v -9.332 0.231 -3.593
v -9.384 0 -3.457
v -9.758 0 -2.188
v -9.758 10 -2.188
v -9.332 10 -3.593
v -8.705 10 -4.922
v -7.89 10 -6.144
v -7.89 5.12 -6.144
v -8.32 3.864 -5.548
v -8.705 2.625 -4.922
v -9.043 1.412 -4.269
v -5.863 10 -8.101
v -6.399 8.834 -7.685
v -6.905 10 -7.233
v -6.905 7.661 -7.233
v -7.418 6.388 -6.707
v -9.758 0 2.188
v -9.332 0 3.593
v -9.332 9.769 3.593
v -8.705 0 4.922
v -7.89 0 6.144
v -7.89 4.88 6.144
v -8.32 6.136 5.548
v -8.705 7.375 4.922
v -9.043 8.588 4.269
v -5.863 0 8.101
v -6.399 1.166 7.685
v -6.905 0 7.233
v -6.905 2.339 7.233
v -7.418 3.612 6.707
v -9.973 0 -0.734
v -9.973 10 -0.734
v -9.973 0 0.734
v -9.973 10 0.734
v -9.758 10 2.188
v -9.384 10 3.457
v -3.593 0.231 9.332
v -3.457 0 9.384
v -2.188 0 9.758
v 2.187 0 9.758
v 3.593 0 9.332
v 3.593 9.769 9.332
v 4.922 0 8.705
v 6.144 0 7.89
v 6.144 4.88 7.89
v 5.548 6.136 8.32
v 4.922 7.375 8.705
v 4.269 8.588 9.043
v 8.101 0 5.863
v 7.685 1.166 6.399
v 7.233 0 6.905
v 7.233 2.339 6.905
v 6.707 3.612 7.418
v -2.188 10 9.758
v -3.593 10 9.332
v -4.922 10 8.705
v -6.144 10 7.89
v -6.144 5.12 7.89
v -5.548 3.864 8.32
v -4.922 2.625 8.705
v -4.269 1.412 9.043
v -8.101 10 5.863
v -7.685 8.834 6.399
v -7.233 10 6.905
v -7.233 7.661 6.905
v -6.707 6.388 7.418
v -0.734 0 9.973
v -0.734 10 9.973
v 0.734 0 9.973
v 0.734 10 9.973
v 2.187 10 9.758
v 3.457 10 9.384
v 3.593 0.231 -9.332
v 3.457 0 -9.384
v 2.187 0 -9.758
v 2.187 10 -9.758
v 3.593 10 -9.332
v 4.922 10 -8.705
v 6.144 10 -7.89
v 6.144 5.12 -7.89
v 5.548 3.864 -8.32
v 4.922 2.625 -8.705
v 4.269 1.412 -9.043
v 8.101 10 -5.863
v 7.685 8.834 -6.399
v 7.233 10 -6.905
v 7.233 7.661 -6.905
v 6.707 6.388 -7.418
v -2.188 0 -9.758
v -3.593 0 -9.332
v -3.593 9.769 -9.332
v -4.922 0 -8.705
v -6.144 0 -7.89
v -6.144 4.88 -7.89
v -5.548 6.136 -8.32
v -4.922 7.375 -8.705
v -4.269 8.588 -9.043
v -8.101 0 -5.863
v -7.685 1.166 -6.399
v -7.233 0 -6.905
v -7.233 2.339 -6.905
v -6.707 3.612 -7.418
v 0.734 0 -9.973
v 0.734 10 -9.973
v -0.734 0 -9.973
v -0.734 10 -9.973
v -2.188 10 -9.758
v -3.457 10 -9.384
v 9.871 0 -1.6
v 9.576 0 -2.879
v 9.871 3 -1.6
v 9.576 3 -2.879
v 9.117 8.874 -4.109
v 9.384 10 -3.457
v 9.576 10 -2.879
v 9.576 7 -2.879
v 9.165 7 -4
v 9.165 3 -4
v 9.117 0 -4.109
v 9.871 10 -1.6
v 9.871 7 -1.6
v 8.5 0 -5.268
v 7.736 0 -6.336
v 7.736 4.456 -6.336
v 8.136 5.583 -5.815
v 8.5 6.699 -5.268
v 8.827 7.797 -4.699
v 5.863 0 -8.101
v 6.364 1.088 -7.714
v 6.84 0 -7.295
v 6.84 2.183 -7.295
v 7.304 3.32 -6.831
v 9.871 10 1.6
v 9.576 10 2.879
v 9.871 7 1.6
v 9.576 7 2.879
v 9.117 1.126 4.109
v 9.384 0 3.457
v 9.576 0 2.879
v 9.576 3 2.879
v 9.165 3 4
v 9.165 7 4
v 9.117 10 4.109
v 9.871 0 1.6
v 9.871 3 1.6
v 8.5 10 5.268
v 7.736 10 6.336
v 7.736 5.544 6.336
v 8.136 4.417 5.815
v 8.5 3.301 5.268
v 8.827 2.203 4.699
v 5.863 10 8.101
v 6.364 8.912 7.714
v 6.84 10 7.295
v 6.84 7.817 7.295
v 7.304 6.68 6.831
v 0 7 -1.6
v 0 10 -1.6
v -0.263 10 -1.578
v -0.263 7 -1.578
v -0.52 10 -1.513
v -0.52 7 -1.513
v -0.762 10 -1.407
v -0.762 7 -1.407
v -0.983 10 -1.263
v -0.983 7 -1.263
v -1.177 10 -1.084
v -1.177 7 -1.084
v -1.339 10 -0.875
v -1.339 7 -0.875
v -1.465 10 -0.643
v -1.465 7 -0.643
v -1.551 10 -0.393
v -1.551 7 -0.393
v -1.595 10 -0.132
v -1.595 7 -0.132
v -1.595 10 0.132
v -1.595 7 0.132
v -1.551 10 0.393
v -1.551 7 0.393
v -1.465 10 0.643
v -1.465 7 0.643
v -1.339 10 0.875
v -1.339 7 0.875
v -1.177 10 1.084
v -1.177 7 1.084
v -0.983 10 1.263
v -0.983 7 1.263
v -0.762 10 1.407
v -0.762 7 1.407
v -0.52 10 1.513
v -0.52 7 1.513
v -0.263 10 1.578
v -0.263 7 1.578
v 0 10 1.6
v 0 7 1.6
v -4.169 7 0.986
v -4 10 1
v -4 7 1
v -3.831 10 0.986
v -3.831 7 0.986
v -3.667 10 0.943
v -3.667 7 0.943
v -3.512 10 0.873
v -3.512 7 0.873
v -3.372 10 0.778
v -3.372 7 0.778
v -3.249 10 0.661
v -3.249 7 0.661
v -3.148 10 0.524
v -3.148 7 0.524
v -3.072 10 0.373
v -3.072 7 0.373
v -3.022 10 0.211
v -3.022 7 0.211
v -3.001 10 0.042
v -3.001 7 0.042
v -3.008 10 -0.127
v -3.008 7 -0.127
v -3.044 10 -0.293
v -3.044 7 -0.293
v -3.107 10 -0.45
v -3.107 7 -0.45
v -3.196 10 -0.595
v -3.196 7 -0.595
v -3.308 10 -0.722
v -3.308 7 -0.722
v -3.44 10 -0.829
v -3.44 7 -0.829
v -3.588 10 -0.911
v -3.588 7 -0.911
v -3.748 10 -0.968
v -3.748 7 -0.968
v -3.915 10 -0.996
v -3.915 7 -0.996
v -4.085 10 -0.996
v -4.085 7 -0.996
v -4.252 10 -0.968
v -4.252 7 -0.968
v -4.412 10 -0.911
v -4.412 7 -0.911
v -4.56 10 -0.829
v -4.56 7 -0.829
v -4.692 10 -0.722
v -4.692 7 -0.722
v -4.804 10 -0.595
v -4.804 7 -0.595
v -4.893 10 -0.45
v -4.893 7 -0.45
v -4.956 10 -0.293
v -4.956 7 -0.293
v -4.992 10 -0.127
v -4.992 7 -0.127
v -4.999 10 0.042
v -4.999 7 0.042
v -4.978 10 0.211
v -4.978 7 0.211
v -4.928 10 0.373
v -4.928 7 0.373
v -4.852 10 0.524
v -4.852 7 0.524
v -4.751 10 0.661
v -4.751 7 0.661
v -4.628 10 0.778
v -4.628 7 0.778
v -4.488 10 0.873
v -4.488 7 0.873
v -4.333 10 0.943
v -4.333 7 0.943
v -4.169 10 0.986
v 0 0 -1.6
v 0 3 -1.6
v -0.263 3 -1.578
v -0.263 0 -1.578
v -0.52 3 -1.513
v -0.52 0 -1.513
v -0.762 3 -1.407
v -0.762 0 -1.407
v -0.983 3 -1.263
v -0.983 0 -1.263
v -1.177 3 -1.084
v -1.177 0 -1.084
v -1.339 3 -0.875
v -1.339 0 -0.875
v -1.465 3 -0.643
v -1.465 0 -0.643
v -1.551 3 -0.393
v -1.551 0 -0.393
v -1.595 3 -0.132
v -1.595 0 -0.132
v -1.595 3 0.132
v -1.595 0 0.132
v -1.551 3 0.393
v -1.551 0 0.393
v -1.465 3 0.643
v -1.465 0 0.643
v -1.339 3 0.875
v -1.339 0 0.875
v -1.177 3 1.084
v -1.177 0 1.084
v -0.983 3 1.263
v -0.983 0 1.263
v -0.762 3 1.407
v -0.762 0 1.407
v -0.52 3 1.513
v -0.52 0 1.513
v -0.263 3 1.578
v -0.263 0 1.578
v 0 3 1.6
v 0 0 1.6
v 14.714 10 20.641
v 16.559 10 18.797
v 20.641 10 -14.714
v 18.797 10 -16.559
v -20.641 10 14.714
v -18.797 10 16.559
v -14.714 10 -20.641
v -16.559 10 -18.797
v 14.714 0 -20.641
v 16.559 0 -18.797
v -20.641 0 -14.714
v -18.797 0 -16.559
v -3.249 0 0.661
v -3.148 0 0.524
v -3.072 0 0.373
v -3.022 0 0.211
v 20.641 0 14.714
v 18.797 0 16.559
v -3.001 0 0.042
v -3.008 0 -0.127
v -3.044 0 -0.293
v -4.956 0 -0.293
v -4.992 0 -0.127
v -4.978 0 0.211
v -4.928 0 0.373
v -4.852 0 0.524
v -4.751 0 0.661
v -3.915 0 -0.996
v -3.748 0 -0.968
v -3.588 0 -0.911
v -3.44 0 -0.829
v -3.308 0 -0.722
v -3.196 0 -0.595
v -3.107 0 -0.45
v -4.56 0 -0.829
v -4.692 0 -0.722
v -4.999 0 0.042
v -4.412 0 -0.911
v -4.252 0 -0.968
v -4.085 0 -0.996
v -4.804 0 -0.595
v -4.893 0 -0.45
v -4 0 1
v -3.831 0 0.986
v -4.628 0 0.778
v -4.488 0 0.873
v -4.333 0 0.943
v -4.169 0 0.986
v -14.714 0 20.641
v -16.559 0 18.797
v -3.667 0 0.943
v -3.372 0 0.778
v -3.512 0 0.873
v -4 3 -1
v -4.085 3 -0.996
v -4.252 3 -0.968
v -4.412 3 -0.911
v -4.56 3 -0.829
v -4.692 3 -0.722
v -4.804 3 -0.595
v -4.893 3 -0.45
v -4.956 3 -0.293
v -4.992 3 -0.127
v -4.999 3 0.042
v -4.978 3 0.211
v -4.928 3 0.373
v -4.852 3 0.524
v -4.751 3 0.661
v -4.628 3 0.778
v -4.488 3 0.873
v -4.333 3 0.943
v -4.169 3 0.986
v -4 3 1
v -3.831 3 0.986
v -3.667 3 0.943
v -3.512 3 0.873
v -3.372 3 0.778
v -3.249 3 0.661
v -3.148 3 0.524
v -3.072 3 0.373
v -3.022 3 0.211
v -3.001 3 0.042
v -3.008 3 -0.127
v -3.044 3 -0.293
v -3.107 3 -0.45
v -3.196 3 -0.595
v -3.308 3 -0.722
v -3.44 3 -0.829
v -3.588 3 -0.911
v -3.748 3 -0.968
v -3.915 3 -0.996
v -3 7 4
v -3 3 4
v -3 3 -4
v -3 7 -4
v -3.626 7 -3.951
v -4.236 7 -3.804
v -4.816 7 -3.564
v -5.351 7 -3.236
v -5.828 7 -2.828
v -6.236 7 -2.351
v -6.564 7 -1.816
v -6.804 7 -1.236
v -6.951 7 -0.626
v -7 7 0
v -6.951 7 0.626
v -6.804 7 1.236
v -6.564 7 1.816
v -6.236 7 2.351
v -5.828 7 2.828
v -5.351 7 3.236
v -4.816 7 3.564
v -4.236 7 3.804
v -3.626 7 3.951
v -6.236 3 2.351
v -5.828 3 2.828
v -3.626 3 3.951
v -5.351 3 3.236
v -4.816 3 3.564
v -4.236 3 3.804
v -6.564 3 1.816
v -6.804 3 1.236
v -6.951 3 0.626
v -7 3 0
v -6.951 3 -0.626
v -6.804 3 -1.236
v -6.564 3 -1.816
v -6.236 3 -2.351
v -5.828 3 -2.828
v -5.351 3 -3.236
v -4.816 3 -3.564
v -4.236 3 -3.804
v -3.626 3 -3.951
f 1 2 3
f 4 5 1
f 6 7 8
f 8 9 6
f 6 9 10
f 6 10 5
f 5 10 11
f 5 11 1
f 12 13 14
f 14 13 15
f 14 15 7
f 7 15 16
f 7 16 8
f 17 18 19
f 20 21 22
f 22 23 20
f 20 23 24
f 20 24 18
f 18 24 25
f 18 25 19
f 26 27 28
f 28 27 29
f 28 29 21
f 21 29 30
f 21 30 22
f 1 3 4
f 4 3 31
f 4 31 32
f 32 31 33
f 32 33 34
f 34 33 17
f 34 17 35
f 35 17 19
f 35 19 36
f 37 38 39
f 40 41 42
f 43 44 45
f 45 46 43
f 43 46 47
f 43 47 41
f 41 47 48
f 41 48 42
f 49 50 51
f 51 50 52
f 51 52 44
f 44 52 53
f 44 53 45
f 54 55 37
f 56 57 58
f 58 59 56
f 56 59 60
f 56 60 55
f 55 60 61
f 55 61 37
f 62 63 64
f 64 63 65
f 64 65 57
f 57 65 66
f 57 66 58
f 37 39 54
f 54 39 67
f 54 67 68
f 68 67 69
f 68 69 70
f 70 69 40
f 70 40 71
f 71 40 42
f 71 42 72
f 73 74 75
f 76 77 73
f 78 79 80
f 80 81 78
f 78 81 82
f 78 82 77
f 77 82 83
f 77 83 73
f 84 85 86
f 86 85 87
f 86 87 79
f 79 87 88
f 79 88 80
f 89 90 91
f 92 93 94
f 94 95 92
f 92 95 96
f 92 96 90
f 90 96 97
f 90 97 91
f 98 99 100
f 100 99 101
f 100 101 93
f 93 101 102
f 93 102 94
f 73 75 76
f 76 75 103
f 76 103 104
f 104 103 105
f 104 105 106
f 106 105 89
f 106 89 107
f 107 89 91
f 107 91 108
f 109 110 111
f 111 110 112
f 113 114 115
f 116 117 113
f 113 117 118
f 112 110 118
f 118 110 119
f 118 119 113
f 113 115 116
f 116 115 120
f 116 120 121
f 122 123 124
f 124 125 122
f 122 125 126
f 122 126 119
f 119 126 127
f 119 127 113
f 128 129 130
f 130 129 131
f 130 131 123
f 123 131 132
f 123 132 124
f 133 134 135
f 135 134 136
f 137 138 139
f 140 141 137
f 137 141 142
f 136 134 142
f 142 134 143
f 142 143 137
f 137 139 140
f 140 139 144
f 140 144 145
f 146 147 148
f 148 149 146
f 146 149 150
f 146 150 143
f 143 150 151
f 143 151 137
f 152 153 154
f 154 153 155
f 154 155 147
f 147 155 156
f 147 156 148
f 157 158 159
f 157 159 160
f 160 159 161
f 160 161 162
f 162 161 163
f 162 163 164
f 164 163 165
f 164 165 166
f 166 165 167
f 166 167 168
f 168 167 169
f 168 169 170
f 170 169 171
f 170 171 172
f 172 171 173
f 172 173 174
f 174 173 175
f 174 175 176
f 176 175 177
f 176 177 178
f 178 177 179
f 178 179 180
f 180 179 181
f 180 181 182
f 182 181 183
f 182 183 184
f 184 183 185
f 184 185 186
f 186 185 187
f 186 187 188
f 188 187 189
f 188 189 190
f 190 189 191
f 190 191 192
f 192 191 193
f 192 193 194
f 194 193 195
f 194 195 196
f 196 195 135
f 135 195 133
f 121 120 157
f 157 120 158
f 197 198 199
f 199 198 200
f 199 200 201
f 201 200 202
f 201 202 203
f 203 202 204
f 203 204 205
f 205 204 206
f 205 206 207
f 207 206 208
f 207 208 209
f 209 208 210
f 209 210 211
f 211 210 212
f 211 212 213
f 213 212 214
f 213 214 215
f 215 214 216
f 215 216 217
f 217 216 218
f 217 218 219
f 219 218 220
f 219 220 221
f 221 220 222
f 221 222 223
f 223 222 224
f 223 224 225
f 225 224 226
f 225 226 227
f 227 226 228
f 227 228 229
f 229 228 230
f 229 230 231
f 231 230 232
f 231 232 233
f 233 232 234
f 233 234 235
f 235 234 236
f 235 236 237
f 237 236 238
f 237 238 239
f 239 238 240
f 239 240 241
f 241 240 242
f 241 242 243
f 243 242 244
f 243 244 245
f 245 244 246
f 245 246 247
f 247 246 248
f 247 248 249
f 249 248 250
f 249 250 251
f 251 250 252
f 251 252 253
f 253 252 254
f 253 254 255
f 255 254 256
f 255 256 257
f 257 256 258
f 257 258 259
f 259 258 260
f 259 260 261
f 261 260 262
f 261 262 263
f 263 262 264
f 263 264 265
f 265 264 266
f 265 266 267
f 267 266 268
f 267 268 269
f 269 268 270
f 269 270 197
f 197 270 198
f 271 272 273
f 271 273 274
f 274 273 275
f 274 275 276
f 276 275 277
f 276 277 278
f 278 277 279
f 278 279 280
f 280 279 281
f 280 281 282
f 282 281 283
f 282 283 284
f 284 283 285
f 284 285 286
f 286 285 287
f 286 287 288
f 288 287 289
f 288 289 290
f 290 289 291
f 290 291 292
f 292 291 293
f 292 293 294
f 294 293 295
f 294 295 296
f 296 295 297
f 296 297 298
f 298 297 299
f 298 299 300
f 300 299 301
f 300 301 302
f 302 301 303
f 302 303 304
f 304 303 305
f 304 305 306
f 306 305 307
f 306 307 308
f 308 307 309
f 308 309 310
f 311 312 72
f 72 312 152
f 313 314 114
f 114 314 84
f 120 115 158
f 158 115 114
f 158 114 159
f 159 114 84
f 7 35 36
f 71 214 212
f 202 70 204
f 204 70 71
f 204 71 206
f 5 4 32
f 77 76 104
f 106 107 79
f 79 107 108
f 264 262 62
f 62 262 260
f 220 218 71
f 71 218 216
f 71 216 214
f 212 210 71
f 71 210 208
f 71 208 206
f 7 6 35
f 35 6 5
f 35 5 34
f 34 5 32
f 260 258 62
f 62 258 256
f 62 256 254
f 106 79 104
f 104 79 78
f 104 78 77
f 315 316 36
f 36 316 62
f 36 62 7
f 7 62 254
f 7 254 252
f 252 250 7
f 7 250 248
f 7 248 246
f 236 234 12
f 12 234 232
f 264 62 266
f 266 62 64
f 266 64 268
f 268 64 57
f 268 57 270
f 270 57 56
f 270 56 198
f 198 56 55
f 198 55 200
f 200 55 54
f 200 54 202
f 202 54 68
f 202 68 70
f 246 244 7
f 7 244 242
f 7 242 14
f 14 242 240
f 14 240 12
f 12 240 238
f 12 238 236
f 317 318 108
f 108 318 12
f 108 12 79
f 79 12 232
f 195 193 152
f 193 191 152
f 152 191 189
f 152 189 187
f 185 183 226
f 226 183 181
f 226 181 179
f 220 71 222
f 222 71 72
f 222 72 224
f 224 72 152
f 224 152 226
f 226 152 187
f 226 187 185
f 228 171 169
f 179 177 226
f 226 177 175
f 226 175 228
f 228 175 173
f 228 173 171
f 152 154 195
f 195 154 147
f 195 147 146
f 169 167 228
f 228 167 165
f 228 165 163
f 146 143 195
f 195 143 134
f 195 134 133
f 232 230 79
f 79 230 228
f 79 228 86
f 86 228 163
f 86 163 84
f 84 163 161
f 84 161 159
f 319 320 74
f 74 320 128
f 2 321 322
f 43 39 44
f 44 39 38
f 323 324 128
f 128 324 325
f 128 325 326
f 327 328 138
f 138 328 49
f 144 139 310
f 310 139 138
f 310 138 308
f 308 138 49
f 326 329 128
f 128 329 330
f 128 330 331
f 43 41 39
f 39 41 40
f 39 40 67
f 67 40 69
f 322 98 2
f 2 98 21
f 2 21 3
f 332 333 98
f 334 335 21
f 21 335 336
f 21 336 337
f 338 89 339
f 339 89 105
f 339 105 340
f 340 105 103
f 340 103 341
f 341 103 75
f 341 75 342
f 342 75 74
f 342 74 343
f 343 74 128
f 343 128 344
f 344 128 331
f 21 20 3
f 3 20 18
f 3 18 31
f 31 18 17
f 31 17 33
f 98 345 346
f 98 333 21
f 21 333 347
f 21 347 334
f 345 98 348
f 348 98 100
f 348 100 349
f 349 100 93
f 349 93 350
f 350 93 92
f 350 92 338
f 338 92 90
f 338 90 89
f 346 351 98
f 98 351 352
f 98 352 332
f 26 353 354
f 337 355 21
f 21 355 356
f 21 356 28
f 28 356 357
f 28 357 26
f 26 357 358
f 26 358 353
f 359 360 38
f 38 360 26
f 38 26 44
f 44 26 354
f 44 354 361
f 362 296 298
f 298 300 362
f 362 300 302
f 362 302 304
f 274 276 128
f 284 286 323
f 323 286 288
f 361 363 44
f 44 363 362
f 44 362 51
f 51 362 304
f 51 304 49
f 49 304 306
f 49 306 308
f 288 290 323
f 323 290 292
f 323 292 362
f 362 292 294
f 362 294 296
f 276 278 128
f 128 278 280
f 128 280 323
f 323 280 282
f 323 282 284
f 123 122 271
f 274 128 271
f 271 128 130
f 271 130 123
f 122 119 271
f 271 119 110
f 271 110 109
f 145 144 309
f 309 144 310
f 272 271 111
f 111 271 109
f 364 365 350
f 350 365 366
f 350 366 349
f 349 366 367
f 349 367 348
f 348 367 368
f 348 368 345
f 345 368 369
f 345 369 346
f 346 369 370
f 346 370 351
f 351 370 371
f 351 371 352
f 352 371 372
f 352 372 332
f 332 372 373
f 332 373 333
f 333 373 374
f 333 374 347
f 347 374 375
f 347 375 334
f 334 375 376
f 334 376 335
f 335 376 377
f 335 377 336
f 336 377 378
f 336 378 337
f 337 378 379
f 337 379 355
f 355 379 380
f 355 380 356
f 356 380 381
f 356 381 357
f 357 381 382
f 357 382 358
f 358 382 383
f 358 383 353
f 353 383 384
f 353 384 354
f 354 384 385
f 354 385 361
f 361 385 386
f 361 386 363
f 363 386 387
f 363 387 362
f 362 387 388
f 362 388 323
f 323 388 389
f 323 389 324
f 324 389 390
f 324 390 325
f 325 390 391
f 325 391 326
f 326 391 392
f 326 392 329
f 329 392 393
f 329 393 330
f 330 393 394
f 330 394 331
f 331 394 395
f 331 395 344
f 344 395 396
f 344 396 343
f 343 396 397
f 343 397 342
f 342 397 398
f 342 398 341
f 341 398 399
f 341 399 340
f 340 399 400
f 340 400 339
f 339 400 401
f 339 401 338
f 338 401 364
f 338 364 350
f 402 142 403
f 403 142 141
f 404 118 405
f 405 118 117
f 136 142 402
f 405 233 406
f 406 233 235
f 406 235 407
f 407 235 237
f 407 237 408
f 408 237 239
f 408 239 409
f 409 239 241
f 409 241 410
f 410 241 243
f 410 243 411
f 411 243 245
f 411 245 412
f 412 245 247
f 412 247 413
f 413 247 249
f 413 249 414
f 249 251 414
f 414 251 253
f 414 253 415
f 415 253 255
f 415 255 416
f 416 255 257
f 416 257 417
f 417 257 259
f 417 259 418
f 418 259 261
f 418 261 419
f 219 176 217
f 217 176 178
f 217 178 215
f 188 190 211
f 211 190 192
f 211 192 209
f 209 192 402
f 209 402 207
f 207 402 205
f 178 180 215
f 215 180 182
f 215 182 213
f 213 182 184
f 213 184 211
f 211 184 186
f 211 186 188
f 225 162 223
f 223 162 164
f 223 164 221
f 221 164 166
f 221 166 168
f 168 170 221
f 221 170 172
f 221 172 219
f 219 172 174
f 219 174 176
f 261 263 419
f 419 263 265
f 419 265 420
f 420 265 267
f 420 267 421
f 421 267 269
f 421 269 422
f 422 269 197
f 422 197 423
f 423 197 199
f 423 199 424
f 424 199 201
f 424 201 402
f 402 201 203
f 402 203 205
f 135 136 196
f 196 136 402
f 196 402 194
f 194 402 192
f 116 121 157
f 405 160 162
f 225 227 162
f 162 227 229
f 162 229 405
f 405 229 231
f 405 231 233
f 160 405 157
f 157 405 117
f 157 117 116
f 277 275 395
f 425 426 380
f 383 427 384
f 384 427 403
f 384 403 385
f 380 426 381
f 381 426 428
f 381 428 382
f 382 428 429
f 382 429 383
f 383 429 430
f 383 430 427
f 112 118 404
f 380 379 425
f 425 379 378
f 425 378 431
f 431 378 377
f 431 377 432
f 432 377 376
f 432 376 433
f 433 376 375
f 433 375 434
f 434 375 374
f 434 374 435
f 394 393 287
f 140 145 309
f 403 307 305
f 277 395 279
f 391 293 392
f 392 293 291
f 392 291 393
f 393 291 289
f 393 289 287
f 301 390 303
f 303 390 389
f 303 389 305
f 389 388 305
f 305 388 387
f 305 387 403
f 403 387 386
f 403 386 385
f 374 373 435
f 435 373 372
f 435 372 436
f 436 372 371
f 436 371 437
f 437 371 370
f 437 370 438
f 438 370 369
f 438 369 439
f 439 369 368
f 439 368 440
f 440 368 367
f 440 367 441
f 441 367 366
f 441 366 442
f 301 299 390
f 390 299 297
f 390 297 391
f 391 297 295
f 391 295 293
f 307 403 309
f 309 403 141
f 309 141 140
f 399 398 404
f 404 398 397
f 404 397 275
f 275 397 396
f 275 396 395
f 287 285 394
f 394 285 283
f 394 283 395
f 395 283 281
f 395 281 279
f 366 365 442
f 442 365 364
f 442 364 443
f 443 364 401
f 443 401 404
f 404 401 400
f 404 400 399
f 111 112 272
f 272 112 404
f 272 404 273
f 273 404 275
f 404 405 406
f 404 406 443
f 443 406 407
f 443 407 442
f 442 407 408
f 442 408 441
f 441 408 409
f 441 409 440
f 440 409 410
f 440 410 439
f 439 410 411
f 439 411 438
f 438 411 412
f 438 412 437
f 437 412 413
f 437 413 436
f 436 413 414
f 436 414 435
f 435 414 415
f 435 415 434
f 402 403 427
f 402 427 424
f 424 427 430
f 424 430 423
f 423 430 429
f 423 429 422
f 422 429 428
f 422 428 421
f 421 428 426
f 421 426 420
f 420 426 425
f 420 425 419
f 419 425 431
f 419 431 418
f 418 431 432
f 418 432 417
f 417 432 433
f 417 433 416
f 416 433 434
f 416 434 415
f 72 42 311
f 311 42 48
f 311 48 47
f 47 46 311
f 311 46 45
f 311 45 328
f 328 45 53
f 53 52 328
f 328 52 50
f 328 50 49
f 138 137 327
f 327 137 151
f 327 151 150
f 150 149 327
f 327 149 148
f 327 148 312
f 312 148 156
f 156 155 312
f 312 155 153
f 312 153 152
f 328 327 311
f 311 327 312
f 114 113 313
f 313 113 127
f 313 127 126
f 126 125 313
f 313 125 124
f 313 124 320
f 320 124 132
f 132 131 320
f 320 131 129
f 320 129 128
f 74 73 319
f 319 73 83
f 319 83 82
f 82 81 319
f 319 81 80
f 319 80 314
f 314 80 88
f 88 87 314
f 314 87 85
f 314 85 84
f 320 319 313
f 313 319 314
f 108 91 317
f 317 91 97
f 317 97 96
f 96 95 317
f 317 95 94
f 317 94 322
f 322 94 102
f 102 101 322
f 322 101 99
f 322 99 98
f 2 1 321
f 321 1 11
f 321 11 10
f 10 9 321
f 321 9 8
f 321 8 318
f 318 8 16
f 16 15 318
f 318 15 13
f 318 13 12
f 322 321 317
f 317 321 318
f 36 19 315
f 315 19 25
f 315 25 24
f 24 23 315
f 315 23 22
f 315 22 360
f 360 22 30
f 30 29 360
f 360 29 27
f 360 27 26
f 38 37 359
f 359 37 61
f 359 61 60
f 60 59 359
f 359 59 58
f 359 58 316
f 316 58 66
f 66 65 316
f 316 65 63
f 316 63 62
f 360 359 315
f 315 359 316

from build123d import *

# Parameters (mm, degrees)
SKETCH1_R           = 10
BOSS_EXTRUDE1_DEPTH = 10
SKETCH3_R           = 1.6
CUT_EXTRUDE2_DEPTH  = 18.320508076
SKETCH7_W           = 3.2
SKETCH7_H           = 10
CUT_EXTRUDE6_DEPTH  = 10
SKETCH9_R           = 1
CUT_EXTRUDE7_DEPTH  = 18.320508076
SKETCH10_W          = 8
SKETCH10_H          = 4
CUT_EXTRUDE8_DEPTH  = 17
FILLET1_R           = 4
BOSS_EXTRUDE3_START = -0.920608418
BOSS_EXTRUDE3_DEPTH = 15.920608418
CIRPATTERN2_COUNT   = 4


# Read off the part's stored shape, not the designer's step: Boss-Extrude3
with BuildPart() as part:
    # Sketch1 → Boss-Extrude1 (new body)
    with BuildSketch(Plane(origin=(0, 0, 0), x_dir=(1, 0, 0), z_dir=(0, 1, 0))):
        with Locations(Location((0, 0, 0), (0, 0, 270))):
            Circle(SKETCH1_R)
    extrude(amount=BOSS_EXTRUDE1_DEPTH)

    # Sketch3 → Cut-Extrude2 (cut, through all)
    with BuildSketch(Plane(origin=(0, 10, 0), x_dir=(1, 0, 0), z_dir=(0, 1, 0))):
        with Locations(Location((0, 0, 0), (0, 0, 270))):
            Circle(SKETCH3_R)
    extrude(amount=-CUT_EXTRUDE2_DEPTH, mode=Mode.SUBTRACT)

    # Sketch7 → Cut-Extrude6 (cut)
    with BuildSketch(Plane(origin=(10, 0, 0), x_dir=(0, 0, -1), z_dir=(1, 0, 0))):
        with Locations((0, 5)):
            Rectangle(SKETCH7_W, SKETCH7_H)
    extrude(amount=-CUT_EXTRUDE6_DEPTH, mode=Mode.SUBTRACT)

    # Sketch9 → Cut-Extrude7 (cut, through all)
    with BuildSketch(Plane(origin=(0, 10, 0), x_dir=(1, 0, 0), z_dir=(0, 1, 0))):
        with Locations(Location((-4, 0, 0), (0, 0, 270))):
            Circle(SKETCH9_R)
    extrude(amount=-CUT_EXTRUDE7_DEPTH, mode=Mode.SUBTRACT)

    # Sketch10 → Cut-Extrude8 (cut)
    with BuildSketch(Plane(origin=(10, 0, 0), x_dir=(0, 0, -1), z_dir=(1, 0, 0))):
        with Locations((0, 5)):
            Rectangle(SKETCH10_W, SKETCH10_H)
    extrude(amount=-CUT_EXTRUDE8_DEPTH, mode=Mode.SUBTRACT)

    # Fillet1
    fillet1_edges = [part.edges().sort_by_distance(p)[0] for p in [
        (-7, 5, 4),
        (-7, 5, -4),
    ]]
    fillet(fillet1_edges, radius=FILLET1_R - 0.0001)  # a hair under: the kernel refuses the full size

    # Boss-Extrude3 outline → Boss-Extrude3 (add)
    with BuildSketch(Plane(origin=(7.071067812, 0, 7.071067812), x_dir=(0.7071067811865476, 0, -0.7071067811865476), z_dir=(0.7071067811865476, 0, 0.7071067811865476)).offset(BOSS_EXTRUDE3_START)):
        Polygon((4.191019983, 0), (-1.582482709, 10), (-4.191019983, 10), (1.582482709, 0), align=None)
    boss_extrude3 = extrude(amount=BOSS_EXTRUDE3_DEPTH)

    # CirPattern2: Boss-Extrude3 ×4 about axis
    cirpattern2_axis = Axis((0, 0, 0), (0, 1, 0))
    for i in range(1, CIRPATTERN2_COUNT):
        add(boss_extrude3.rotate(cirpattern2_axis, i * 360 / CIRPATTERN2_COUNT))


solid = part.part
